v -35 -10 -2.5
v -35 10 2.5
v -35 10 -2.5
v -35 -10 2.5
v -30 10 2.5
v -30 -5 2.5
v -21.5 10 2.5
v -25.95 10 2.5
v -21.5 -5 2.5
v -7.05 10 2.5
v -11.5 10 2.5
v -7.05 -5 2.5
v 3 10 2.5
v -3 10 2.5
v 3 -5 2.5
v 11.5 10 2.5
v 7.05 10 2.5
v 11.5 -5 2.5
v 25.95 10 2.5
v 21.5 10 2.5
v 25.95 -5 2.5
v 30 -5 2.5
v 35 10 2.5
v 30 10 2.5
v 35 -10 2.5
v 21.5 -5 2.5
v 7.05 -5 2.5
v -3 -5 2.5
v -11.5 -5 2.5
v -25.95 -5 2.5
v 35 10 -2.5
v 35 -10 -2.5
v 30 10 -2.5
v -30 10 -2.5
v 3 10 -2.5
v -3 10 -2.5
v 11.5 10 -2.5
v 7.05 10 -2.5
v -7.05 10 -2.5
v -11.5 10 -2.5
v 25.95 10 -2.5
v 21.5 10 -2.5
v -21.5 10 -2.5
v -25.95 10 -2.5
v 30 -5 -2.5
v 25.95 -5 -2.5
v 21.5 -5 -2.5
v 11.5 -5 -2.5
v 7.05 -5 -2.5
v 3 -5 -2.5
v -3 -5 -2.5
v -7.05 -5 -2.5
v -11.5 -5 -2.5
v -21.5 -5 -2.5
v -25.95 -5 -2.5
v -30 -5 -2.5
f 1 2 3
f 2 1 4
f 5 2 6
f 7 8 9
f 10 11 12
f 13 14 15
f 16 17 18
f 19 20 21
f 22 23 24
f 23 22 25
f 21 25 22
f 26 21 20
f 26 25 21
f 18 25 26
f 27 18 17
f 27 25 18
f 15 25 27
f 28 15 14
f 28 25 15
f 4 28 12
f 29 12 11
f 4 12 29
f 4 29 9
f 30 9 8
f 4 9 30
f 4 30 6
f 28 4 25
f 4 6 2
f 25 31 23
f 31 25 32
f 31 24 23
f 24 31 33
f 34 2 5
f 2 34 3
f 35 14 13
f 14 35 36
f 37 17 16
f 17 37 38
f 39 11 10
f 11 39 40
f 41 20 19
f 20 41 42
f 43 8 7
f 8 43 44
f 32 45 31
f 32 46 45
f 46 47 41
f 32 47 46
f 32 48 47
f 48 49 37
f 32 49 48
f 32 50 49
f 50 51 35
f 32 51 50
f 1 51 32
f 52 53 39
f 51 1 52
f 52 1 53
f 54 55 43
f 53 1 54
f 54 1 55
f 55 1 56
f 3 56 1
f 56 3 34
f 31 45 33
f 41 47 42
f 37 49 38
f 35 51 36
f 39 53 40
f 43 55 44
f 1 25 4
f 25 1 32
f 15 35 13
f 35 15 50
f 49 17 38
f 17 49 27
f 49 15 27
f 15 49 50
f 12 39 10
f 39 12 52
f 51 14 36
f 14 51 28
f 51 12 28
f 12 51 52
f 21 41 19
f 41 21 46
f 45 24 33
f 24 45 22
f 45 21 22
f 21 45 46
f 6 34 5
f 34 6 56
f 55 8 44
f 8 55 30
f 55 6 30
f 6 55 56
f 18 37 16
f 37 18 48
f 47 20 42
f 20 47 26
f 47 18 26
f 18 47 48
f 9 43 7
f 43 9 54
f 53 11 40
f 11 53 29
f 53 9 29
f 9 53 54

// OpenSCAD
w=4.05;

difference() {
    translate([0,0,0])
        cube([70,20,5], center=true);
    translate([3+(w/2),5,0])
        cube([w,20,10], center=true);
    translate([-3-(w/2),5,0])
        cube([w,20,10], center=true);
    translate([30-(w/2),5,0])
        cube([w,20,10], center=true);
    translate([-30+(w/2),5,0])
        cube([w,20,10], center=true);
    translate([16.5,5,0])
        cube([10,20,10], center=true);
    translate([-16.5,5,0])
        cube([10,20,10], center=true);
}
